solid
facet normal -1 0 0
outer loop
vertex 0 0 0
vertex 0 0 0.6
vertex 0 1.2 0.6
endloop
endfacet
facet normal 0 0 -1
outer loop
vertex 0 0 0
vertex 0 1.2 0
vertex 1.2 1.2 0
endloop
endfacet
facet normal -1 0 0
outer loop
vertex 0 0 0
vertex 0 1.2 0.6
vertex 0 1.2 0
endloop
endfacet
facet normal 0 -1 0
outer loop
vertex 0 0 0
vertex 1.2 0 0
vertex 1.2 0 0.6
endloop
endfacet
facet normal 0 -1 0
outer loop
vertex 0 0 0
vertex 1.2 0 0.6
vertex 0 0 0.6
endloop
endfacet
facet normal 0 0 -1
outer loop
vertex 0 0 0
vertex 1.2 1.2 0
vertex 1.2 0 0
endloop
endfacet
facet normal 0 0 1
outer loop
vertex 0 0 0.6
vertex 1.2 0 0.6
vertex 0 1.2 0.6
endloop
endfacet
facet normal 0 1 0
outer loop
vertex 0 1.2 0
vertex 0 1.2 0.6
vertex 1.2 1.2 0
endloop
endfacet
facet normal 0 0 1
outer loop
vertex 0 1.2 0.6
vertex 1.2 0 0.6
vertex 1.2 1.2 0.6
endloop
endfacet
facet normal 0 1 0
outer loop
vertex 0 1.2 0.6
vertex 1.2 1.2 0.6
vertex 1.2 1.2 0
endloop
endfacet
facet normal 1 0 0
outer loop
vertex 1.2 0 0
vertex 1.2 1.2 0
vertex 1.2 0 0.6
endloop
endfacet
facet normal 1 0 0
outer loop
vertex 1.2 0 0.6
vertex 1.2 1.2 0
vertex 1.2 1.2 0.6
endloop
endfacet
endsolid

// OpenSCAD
/* Warning, this is a very basic generator with a lot of approximation 
input data : [UQFN, MCA, 1.2x1.2x0.6mm, 8, , A, C04-01171A]
generated by com.zoubworld.electronics.cad.model3d.Basic
Date : Sun Feb 15 10:50:49 CET 2026
*/

//body
color("black")
translate([0,0,0])
cube([1.2,1.2,0.6], center=false);
